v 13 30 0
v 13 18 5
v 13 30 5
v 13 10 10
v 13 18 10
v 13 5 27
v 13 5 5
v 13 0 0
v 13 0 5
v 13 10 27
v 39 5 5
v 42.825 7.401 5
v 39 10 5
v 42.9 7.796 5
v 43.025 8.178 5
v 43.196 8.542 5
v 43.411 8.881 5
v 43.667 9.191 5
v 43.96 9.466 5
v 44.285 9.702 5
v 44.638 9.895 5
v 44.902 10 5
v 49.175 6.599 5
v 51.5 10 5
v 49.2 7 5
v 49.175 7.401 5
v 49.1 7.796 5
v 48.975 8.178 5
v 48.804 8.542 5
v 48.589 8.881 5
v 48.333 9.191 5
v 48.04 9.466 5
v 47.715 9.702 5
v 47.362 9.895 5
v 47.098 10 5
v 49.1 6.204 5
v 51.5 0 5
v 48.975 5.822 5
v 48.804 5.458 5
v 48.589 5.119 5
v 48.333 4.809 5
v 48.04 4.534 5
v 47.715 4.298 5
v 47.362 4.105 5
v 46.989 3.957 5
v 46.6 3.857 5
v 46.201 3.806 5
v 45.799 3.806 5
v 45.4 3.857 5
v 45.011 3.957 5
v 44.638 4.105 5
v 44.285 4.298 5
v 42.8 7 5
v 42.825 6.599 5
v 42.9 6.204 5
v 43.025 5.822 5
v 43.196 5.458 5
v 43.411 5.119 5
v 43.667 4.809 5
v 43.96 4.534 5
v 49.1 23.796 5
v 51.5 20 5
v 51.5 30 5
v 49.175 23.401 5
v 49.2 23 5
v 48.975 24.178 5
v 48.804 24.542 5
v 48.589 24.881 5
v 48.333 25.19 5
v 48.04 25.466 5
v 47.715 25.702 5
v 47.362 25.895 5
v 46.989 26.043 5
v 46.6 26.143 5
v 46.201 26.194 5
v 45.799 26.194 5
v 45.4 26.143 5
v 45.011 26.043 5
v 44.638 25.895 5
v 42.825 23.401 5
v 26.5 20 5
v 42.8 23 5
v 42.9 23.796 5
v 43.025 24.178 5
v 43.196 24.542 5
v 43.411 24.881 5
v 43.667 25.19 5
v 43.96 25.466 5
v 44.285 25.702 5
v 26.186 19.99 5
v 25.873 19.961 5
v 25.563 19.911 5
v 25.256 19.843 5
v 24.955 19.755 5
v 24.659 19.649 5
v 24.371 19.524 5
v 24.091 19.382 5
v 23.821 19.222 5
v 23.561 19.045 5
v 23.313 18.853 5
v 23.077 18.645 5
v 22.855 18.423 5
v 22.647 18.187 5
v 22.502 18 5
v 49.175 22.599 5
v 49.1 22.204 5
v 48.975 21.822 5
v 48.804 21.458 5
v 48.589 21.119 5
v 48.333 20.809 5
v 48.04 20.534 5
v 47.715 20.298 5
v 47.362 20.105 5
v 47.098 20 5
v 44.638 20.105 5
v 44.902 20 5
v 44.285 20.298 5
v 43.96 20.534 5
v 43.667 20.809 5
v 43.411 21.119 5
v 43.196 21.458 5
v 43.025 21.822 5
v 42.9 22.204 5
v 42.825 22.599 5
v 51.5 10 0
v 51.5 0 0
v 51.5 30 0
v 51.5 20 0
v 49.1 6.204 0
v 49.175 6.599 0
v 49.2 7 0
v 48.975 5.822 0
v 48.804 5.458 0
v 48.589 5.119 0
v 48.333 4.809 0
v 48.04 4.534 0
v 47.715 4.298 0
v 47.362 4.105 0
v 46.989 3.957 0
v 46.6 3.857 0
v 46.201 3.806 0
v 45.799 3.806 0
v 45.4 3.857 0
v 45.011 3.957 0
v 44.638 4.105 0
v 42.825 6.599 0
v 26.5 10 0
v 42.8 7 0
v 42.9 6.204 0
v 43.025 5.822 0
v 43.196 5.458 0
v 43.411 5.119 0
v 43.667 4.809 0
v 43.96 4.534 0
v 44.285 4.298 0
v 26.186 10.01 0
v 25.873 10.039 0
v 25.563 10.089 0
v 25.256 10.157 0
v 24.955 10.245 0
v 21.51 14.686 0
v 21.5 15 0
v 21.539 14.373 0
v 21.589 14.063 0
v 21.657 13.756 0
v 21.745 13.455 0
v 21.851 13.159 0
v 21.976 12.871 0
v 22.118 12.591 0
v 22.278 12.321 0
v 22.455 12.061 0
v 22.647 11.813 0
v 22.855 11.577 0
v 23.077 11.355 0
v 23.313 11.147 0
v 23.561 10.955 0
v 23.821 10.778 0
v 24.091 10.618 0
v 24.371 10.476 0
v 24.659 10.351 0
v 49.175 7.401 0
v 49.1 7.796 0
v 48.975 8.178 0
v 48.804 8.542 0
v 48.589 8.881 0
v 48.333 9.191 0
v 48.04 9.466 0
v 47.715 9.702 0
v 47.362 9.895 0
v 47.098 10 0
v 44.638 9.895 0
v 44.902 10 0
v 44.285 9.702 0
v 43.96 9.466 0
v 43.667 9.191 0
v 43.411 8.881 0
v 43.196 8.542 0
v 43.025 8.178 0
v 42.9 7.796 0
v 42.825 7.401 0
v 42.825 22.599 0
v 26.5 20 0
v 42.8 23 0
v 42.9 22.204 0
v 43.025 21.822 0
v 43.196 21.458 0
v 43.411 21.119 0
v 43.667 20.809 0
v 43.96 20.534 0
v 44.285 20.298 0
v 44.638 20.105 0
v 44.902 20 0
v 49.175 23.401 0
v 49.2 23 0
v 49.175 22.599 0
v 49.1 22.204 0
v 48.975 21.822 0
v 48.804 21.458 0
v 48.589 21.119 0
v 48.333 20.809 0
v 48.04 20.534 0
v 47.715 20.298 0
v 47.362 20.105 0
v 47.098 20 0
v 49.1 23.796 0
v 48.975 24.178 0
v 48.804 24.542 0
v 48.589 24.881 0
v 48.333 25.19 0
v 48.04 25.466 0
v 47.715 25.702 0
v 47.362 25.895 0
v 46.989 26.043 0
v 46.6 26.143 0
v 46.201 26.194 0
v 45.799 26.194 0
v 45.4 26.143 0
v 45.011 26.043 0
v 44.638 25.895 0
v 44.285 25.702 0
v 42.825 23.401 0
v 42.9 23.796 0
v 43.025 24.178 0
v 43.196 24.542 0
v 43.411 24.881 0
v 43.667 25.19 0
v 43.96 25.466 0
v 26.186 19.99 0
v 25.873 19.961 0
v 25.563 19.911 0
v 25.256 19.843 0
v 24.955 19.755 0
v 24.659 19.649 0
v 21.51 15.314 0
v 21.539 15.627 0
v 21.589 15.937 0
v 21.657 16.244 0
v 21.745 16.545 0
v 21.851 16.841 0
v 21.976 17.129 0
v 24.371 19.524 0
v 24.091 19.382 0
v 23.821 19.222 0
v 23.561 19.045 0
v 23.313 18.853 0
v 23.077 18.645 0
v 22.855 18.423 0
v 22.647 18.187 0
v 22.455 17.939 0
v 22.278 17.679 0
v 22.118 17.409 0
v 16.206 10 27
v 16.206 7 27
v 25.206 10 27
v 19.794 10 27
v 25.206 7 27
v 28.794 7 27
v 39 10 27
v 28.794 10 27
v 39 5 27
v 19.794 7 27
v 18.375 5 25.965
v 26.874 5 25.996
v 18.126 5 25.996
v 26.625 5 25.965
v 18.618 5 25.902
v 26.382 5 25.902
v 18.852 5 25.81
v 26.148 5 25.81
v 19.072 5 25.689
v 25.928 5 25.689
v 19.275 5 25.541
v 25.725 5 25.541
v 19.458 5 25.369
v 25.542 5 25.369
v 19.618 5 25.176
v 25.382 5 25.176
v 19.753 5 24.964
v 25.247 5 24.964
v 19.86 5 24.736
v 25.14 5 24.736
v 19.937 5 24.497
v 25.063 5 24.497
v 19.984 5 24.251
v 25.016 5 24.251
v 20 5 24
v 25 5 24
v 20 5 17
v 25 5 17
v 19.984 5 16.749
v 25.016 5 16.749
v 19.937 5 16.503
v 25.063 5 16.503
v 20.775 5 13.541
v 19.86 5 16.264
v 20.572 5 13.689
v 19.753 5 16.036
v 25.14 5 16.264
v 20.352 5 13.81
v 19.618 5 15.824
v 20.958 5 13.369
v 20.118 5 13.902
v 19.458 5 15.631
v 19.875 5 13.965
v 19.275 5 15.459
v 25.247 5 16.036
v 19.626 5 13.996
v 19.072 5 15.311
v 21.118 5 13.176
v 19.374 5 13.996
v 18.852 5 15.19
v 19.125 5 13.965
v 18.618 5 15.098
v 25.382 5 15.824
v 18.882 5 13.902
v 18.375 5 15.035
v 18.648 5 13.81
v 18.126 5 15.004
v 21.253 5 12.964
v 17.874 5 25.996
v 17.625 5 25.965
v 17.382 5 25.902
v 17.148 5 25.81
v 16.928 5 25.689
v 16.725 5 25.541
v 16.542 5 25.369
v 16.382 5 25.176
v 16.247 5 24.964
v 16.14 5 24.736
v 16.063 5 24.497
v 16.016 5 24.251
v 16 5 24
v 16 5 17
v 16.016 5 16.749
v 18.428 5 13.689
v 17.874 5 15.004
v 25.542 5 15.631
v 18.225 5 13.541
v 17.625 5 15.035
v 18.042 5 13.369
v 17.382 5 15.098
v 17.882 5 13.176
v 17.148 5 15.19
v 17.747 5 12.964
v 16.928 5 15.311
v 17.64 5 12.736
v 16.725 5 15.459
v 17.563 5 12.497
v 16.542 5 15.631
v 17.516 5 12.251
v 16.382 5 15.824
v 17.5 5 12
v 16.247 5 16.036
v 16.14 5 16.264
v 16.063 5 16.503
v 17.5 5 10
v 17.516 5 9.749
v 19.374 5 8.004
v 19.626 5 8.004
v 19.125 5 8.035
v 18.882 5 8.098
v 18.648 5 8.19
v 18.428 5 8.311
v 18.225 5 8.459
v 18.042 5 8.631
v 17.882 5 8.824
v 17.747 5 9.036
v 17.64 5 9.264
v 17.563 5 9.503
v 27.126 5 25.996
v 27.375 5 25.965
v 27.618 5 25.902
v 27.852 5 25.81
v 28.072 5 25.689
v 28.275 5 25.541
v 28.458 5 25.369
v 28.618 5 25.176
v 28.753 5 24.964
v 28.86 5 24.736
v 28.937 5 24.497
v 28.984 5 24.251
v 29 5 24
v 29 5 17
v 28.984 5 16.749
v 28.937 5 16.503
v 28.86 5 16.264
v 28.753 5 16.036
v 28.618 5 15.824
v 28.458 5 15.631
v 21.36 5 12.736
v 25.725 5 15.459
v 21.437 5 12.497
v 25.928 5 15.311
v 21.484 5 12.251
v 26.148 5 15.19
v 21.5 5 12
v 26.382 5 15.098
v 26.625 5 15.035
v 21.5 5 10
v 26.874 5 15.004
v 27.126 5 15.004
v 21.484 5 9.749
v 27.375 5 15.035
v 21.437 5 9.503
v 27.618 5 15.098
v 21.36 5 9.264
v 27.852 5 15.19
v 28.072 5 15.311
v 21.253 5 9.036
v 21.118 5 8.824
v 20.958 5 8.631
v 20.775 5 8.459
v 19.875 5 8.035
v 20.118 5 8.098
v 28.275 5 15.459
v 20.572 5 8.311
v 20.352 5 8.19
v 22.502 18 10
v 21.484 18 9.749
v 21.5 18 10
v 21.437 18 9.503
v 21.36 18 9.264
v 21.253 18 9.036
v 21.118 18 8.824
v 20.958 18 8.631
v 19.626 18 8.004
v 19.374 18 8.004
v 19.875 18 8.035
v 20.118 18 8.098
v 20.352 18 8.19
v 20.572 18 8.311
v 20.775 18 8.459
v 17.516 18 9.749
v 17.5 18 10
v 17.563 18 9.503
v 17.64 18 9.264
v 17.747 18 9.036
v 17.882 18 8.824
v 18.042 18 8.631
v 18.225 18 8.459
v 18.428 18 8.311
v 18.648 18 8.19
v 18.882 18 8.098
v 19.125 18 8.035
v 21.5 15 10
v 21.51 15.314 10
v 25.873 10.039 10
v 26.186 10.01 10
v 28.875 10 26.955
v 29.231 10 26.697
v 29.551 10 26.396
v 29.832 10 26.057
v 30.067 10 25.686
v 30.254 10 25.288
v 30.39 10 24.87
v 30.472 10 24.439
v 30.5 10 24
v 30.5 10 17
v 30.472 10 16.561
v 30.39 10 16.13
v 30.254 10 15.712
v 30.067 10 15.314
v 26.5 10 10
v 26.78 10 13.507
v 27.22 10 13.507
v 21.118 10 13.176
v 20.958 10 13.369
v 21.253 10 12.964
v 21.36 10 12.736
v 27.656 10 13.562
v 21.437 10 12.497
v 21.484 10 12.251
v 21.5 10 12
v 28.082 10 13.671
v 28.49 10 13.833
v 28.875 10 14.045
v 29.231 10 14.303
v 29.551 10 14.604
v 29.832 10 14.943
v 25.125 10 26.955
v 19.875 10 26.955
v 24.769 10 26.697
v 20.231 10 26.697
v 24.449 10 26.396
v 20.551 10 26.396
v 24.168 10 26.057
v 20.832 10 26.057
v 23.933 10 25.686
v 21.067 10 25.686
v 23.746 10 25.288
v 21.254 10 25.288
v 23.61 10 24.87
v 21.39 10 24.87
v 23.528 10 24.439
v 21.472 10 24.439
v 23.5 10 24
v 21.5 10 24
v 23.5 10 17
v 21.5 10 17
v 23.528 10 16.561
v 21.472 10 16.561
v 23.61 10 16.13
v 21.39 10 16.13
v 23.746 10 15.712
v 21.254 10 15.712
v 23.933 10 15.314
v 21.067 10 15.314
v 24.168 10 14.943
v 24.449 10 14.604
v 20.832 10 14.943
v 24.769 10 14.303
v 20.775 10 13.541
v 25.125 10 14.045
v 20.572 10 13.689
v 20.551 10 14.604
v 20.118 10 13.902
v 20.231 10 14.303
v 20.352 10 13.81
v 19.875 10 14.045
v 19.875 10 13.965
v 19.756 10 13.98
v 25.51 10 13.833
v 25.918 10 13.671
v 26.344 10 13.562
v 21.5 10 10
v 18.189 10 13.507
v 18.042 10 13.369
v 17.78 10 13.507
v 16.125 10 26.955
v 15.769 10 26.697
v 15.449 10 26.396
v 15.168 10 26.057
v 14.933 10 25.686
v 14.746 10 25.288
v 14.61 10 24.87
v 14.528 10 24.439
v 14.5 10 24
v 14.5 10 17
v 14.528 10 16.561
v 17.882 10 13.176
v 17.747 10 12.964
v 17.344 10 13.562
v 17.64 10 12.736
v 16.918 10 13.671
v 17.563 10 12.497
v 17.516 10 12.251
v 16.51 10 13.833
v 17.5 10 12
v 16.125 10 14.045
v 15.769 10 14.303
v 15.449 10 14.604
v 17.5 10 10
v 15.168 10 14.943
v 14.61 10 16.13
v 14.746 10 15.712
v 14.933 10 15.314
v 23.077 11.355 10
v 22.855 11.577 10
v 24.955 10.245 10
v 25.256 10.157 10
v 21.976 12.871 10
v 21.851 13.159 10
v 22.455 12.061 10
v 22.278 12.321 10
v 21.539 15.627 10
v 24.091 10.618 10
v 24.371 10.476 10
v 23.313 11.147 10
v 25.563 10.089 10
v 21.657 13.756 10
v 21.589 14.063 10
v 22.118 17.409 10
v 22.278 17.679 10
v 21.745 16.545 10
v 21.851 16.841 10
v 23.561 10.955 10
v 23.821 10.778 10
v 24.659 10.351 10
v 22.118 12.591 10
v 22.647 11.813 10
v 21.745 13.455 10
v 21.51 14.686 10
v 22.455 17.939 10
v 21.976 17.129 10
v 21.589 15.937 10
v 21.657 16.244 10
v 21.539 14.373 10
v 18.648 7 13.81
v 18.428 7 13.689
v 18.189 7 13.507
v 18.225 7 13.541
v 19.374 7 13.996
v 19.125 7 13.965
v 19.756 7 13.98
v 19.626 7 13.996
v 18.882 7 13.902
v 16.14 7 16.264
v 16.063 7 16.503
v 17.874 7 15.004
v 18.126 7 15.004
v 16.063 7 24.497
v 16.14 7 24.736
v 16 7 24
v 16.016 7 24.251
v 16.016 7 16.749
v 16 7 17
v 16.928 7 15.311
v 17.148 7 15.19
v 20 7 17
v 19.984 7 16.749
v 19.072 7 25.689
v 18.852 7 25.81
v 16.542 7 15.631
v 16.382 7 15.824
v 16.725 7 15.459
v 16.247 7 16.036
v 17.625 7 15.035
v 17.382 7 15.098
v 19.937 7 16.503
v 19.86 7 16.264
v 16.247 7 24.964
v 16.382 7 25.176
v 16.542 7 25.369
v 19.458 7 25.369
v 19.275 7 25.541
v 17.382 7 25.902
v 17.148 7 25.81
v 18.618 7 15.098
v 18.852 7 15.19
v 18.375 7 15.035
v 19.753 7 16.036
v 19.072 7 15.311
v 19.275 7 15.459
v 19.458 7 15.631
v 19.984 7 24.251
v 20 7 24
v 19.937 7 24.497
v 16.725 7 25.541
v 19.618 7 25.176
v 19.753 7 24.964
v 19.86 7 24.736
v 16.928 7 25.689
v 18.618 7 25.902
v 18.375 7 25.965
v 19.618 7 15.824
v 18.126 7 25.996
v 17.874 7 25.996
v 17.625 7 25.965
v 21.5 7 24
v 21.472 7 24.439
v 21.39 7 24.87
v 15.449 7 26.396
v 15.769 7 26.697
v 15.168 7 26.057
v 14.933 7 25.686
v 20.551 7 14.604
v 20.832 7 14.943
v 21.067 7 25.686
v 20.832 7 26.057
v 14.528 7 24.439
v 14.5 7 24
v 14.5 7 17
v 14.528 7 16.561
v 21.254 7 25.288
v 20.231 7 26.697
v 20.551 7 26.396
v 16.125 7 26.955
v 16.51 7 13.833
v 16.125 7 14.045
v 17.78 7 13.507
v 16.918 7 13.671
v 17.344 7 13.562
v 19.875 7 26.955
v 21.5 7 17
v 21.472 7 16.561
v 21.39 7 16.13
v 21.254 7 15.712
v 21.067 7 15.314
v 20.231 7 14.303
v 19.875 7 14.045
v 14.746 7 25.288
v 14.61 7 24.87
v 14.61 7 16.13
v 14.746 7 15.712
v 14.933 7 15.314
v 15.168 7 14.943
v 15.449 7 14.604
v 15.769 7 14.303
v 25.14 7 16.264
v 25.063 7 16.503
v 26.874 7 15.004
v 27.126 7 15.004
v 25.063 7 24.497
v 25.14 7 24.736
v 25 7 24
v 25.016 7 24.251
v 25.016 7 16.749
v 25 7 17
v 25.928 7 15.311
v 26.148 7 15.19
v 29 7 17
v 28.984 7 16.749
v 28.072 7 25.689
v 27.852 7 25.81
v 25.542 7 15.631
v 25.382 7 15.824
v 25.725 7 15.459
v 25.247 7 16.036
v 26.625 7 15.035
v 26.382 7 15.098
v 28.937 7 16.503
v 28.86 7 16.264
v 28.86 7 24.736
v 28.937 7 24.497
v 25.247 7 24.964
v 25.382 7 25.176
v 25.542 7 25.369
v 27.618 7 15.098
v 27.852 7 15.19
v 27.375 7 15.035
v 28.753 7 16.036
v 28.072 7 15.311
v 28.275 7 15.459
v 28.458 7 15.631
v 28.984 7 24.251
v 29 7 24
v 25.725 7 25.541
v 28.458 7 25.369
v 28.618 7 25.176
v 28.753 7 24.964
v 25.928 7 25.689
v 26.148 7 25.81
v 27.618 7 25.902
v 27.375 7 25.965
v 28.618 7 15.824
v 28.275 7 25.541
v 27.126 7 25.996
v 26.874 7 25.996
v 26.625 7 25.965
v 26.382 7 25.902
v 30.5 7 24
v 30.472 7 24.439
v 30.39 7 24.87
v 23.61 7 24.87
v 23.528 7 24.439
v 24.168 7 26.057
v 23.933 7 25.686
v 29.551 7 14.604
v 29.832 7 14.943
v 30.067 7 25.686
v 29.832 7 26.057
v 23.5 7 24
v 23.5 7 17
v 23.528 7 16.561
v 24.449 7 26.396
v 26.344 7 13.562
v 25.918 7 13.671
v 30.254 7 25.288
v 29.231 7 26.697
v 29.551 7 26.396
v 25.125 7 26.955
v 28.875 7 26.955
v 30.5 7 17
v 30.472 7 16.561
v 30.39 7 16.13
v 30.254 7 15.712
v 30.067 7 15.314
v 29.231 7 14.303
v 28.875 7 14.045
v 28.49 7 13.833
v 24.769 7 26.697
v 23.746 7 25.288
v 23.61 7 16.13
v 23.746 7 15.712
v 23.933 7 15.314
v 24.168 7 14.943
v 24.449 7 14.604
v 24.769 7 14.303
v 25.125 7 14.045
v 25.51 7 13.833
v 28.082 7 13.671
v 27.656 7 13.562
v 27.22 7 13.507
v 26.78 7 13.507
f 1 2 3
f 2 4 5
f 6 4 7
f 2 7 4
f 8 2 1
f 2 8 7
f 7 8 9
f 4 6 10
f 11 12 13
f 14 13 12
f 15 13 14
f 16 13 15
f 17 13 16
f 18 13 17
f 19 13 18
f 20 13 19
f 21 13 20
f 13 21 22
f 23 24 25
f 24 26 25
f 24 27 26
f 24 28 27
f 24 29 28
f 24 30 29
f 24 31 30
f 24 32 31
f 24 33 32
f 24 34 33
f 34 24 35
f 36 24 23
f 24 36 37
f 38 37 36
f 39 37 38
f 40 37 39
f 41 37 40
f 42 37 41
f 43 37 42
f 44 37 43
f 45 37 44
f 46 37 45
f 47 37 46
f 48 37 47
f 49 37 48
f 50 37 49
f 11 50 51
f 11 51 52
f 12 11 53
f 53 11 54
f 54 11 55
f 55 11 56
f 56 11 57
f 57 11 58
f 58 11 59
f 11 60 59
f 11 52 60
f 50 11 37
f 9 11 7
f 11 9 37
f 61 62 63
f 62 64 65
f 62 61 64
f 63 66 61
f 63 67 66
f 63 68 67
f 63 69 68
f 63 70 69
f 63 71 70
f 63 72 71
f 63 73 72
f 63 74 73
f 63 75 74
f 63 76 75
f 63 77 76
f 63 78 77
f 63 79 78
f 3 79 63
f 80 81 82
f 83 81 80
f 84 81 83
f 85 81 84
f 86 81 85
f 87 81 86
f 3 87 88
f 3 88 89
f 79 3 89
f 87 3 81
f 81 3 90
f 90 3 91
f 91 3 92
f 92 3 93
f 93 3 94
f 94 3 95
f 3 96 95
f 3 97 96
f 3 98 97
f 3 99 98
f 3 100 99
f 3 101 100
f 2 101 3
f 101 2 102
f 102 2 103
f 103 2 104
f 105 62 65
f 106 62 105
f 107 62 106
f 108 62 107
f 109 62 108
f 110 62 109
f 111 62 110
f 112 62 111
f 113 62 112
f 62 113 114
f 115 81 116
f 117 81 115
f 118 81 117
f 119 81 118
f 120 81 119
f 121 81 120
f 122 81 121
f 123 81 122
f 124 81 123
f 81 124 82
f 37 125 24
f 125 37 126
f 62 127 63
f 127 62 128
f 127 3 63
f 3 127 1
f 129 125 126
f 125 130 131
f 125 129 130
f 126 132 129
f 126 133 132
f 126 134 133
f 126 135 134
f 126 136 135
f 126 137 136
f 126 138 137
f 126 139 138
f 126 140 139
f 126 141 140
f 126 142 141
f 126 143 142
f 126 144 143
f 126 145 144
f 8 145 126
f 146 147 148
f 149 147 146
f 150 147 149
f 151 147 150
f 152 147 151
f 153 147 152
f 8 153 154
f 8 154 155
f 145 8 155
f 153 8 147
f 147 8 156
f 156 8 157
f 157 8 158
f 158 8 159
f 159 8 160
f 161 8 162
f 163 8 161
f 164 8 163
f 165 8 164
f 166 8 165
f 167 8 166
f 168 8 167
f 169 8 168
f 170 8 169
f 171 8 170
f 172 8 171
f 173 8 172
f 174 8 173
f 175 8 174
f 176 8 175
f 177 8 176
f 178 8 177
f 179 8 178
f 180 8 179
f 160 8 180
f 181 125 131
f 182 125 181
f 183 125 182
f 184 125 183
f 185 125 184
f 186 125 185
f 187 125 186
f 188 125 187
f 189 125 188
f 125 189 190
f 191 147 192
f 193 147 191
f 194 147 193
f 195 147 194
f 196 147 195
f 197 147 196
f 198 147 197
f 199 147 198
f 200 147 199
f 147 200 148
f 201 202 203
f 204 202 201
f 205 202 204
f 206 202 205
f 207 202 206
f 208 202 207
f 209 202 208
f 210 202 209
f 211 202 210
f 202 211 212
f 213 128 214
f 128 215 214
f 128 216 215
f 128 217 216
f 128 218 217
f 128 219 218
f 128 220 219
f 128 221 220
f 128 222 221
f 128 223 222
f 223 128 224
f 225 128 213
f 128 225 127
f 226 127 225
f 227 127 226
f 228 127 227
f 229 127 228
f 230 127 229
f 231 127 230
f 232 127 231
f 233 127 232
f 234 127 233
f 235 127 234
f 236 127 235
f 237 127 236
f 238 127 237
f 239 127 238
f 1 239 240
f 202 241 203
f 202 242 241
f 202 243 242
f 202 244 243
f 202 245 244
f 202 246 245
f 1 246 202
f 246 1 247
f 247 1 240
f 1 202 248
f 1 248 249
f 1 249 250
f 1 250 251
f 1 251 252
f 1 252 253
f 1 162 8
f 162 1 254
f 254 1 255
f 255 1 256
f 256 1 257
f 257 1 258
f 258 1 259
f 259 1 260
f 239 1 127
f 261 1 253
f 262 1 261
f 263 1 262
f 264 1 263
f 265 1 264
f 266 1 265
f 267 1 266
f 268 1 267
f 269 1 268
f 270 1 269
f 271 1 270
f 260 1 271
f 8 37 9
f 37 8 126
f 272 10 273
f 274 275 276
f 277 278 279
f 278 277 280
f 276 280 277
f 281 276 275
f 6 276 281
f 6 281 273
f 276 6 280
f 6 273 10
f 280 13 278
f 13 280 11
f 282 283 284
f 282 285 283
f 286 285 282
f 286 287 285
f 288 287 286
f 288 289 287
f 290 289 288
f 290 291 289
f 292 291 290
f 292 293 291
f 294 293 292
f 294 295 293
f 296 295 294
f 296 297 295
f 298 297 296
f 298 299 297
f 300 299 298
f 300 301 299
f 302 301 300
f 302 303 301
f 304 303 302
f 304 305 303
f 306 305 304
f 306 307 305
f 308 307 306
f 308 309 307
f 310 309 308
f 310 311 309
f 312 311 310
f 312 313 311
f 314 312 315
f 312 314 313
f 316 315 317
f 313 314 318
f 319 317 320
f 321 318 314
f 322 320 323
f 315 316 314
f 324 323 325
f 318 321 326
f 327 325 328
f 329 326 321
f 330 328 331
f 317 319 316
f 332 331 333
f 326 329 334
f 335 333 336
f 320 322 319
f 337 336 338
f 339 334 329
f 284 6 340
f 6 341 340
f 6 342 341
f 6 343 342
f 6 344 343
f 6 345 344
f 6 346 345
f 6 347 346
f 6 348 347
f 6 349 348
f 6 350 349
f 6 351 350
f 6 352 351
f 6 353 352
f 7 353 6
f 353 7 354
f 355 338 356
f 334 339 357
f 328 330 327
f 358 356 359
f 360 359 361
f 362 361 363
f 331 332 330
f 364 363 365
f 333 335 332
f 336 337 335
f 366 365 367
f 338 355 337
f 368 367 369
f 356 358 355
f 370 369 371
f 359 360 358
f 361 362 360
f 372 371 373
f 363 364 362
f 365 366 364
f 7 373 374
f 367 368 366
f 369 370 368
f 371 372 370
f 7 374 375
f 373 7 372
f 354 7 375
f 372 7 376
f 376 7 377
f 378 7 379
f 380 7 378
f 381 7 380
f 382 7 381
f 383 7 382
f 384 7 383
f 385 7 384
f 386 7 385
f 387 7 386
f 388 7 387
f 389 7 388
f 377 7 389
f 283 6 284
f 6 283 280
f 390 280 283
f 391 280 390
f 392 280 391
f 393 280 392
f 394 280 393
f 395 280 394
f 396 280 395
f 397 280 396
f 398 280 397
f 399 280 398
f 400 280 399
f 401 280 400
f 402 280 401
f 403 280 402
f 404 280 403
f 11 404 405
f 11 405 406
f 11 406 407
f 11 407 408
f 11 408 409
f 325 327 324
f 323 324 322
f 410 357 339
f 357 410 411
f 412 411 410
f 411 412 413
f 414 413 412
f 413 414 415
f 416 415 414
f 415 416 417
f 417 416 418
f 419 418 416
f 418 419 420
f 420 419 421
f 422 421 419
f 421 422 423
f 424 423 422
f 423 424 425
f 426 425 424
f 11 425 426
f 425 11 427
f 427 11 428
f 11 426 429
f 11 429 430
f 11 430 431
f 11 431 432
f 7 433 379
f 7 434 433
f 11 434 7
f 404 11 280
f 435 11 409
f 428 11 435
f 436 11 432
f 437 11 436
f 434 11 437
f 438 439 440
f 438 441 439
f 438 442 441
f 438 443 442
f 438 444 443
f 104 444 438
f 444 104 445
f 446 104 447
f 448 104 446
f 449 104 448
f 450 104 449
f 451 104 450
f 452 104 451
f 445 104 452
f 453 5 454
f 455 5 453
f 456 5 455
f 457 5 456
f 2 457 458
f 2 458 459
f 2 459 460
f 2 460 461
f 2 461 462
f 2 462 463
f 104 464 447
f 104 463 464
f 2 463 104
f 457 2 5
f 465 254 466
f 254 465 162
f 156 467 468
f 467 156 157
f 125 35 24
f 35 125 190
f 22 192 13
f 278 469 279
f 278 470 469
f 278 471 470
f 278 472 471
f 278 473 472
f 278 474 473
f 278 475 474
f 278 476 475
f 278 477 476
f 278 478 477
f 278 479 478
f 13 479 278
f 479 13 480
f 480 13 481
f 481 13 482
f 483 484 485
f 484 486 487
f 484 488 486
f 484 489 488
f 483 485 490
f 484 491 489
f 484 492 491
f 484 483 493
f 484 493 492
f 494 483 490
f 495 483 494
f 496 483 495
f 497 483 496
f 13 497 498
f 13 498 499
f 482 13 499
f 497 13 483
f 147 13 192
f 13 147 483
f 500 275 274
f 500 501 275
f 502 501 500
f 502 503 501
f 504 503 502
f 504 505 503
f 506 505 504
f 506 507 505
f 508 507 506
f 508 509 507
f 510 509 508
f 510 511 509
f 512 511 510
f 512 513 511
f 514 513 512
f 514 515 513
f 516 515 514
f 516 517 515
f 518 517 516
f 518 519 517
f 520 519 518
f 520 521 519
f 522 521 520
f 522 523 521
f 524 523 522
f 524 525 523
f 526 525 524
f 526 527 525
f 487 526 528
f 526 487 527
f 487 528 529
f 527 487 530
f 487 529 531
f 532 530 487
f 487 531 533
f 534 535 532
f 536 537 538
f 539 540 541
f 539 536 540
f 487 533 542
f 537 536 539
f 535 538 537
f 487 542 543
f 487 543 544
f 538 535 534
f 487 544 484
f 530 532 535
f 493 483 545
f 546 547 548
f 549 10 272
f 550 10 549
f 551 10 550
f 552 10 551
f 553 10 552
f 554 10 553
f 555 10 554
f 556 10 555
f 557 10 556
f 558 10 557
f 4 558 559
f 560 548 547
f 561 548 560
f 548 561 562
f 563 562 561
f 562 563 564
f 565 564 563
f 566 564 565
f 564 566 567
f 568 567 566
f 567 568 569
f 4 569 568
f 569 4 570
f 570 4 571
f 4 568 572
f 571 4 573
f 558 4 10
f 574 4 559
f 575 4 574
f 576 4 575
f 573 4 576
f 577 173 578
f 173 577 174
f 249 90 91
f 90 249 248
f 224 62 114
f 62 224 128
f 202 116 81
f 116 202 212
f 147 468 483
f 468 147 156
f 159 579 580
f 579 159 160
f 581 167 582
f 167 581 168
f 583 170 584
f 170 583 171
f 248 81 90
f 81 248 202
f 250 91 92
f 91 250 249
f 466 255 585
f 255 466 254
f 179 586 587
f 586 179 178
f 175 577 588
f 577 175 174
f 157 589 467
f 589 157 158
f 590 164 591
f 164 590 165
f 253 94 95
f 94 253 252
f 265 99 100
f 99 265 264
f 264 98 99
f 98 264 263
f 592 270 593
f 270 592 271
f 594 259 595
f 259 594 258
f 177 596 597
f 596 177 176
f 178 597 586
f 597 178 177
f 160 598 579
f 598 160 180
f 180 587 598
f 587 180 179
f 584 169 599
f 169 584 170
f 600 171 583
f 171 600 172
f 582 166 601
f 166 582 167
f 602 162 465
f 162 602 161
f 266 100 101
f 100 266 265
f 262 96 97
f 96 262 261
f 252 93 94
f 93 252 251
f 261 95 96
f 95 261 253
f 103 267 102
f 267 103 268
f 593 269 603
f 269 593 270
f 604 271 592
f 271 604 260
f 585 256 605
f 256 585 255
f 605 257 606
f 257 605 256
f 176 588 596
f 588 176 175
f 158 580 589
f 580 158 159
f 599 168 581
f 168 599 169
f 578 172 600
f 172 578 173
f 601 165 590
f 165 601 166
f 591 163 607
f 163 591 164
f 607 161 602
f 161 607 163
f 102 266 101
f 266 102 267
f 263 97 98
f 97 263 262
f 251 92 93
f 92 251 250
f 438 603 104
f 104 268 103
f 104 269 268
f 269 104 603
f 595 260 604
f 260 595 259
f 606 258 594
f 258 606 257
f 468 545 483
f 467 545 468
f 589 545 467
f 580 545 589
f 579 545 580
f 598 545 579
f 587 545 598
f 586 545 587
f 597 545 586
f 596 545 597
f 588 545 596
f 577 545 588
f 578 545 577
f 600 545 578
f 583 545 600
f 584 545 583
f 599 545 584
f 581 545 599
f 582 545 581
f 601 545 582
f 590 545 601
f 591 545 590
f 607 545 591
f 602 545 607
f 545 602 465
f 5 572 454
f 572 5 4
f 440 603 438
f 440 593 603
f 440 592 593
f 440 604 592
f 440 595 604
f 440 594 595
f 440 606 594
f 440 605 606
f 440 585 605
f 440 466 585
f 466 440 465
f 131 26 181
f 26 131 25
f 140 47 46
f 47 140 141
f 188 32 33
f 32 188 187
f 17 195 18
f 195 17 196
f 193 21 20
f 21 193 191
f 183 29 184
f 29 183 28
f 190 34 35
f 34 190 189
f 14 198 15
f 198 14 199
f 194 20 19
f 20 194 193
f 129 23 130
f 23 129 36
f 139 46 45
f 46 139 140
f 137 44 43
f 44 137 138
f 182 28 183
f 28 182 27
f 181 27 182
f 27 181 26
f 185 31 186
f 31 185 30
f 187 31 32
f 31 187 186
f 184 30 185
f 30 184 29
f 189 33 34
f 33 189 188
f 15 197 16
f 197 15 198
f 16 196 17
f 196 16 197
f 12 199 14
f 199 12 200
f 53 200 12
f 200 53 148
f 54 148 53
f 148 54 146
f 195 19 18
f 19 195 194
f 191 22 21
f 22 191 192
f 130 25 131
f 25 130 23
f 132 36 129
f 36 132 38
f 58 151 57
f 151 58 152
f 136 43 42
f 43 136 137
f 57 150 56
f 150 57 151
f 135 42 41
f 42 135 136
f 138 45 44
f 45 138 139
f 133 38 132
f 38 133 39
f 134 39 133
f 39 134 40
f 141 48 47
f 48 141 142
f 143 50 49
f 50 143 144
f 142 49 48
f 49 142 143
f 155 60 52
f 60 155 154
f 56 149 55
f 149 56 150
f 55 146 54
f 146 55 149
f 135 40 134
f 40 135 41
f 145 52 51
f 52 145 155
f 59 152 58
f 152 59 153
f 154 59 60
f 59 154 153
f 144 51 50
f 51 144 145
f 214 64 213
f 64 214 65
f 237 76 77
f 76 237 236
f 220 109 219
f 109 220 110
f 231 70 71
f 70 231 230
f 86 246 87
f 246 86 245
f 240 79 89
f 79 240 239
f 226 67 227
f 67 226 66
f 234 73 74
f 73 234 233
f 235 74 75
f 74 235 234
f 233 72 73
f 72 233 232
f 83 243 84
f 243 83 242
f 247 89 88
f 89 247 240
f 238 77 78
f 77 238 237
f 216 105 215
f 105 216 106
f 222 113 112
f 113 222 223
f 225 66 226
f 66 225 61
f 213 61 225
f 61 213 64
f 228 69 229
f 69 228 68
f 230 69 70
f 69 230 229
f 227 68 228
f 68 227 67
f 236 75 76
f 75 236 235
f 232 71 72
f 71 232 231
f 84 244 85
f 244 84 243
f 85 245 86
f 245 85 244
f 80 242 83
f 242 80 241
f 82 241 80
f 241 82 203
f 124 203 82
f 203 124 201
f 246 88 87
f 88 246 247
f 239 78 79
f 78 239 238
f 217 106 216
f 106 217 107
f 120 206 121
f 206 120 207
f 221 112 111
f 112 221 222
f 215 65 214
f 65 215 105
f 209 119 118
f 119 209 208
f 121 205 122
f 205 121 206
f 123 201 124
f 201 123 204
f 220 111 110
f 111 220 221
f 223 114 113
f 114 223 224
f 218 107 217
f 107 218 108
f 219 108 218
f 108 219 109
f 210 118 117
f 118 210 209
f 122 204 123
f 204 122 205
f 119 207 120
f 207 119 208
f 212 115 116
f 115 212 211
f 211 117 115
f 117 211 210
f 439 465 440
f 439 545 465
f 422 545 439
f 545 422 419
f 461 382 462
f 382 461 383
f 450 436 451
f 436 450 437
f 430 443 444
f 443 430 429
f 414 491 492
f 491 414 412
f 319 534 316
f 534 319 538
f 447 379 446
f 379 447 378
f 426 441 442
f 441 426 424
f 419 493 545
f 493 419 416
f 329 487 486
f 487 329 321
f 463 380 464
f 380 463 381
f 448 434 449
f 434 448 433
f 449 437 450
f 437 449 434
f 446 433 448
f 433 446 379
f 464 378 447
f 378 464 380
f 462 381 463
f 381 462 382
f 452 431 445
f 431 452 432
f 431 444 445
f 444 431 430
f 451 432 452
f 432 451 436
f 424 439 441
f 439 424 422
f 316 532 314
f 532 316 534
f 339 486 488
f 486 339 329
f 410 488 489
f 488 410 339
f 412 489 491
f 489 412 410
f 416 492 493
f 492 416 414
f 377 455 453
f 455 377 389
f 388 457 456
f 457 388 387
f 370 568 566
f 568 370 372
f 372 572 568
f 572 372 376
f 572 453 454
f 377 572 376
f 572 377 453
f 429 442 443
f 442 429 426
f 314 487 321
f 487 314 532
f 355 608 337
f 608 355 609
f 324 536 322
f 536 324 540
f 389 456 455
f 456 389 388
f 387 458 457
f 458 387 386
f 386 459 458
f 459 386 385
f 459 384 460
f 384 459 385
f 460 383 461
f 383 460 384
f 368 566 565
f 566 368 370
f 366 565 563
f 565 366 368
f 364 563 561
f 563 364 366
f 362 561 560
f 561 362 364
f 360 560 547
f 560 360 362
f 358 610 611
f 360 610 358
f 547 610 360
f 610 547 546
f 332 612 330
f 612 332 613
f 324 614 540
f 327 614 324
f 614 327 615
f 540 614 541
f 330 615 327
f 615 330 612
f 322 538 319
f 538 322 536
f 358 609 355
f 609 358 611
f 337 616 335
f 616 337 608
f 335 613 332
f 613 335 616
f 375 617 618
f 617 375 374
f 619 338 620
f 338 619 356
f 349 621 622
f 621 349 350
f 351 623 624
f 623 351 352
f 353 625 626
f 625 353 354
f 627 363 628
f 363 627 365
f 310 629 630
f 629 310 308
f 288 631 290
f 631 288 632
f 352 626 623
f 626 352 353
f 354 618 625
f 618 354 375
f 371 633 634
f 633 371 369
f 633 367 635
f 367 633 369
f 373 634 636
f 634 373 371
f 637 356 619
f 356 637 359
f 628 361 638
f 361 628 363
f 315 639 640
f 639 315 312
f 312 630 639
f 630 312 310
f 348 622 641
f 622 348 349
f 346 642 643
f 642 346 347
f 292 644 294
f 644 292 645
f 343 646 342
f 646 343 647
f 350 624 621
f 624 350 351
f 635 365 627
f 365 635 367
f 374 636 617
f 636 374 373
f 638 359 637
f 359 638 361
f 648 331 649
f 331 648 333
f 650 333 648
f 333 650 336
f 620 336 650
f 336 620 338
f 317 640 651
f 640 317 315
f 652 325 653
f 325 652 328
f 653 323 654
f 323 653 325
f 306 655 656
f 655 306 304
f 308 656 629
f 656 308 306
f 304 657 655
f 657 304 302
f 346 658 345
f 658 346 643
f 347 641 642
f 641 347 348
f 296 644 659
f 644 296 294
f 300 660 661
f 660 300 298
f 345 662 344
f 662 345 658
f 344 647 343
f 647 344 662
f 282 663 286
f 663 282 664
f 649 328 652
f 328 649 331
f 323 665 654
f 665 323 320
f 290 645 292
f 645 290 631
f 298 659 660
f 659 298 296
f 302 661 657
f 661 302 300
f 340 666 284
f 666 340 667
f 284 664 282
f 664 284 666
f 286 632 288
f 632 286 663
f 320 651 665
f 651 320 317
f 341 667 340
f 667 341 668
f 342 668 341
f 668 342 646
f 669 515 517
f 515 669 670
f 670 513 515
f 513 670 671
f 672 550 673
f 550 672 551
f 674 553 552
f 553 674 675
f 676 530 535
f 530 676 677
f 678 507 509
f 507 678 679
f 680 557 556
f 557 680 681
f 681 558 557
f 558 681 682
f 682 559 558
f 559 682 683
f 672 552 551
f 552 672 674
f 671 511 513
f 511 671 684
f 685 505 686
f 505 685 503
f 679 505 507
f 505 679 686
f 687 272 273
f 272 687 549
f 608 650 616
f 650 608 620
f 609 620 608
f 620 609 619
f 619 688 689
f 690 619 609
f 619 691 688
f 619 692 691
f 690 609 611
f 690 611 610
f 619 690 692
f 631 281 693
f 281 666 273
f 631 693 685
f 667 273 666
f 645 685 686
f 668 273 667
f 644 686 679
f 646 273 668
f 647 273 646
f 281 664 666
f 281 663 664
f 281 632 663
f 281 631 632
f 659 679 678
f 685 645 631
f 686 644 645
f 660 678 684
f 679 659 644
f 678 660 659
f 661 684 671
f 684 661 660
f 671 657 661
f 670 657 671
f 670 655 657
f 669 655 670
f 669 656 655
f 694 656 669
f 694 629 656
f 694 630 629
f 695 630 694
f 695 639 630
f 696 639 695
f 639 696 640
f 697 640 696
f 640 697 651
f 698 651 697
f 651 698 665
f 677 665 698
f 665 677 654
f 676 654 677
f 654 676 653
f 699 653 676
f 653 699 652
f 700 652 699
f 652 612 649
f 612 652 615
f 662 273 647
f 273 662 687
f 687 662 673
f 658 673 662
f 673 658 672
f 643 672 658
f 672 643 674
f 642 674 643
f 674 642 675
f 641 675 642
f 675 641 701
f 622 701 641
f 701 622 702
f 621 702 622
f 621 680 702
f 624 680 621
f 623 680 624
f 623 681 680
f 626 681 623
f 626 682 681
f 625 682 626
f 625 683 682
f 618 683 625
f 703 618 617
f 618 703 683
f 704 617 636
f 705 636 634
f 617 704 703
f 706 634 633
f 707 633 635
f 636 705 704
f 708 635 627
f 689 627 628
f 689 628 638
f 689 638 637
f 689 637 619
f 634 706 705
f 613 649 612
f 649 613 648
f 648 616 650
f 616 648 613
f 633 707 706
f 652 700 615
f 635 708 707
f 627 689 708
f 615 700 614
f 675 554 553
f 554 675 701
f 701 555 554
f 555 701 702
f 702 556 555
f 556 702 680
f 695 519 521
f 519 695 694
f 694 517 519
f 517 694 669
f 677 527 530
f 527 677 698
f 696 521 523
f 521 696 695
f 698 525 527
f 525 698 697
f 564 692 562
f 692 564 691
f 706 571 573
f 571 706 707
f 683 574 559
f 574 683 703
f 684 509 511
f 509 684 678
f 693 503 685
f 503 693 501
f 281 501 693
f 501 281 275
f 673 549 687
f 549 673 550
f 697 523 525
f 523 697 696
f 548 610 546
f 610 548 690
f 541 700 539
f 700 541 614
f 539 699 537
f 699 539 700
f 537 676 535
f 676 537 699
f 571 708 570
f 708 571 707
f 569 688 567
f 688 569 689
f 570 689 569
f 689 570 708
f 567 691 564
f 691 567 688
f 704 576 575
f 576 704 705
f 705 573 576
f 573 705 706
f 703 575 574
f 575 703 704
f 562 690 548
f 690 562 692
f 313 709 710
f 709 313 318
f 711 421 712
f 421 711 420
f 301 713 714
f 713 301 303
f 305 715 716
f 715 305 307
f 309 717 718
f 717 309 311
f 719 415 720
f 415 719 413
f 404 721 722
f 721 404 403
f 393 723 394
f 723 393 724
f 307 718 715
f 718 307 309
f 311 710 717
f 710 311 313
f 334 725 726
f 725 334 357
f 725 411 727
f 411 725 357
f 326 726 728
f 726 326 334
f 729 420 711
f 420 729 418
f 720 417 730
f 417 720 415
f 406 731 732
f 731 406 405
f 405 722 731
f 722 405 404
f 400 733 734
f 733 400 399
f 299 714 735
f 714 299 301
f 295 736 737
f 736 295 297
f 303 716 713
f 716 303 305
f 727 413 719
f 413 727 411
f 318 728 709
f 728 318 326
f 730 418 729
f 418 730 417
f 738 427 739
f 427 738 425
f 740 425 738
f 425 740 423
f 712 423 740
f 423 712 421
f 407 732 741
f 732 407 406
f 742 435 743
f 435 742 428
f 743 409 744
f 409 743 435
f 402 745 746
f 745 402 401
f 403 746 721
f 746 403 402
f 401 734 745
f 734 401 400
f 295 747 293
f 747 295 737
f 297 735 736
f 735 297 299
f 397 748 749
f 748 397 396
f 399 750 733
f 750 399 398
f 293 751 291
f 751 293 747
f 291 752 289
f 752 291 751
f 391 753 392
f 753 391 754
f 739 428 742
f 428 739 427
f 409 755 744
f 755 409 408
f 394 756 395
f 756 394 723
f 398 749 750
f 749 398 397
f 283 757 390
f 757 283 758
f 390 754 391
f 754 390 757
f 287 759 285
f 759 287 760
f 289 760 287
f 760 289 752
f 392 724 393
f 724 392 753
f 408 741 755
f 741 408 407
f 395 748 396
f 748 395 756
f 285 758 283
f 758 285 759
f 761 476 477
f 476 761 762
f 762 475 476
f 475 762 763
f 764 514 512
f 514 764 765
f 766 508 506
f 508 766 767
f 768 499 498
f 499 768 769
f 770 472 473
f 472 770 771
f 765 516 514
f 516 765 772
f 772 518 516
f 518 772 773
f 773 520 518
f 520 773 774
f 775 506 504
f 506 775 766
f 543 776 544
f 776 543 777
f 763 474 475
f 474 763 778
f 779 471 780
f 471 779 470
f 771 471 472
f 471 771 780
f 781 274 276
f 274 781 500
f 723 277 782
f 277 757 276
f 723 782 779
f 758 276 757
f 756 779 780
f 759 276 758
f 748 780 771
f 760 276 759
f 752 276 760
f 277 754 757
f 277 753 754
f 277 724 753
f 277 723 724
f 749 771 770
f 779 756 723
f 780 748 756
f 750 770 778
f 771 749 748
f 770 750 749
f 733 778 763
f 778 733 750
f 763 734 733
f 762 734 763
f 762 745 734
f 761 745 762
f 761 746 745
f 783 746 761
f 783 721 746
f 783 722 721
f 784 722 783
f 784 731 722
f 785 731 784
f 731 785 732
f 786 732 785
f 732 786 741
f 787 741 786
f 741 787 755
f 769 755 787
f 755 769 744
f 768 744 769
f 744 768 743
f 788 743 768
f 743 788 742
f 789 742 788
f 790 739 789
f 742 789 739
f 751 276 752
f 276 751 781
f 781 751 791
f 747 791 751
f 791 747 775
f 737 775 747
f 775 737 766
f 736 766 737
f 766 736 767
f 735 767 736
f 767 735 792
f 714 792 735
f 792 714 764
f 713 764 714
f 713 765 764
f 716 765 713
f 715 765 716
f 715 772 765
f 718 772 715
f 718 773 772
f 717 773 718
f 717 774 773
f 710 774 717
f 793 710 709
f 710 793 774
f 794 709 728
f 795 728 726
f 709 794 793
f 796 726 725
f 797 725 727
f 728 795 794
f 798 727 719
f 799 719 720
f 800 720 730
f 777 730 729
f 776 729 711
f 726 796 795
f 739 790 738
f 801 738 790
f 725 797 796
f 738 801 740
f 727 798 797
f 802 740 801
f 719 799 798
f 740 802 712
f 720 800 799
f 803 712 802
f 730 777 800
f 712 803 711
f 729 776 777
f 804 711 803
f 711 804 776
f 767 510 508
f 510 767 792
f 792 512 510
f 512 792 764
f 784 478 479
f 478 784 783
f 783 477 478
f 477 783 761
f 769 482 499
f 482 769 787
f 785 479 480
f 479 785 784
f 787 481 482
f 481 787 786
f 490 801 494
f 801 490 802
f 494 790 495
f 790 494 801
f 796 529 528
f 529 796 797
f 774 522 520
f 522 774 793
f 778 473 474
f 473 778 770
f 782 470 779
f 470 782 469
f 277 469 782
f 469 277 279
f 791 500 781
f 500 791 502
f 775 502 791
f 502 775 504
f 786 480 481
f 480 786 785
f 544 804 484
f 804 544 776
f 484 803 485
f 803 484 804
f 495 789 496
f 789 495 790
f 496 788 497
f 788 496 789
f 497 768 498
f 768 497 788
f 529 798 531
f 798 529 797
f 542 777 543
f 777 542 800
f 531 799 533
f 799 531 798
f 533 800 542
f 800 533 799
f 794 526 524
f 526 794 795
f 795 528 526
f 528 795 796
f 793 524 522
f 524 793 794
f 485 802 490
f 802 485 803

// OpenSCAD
r_m3=2;
r_tete_m3=3.5;
r_ecrou_m3=3.3;
r_m6=3.2;

module endstop_x(){
    difference(){
        union(){
            translate([13,0,0]){cube([38.5,30,5]);}
            translate([13,5,4]){cube([26,13,23]);}
        }
        
        //trou central d'arbre
        hull(){
            translate([26.5,15,-5]){cylinder(r=5, h=50, $fn=100);}
            translate([60,15,-5]){cylinder(r=5, h=50, $fn=100);}
        }
        
        hull(){
            translate([0,15,10]){cylinder(r=5, h=50, $fn=100);}
            translate([60,15,10]){cylinder(r=5, h=50, $fn=100);}
        }
        
        //trous de montage
        
        translate([26.5+19.5,15-8,-5]){cylinder(r=r_m6, h=15, $fn=50);}
        translate([26.5+19.5,15+8,-5]){cylinder(r=r_m6, h=15, $fn=50);}
        
        
        
        
        //trous pour collier de serrage spirale
        hull(){
            translate([26.5-5-2,0,10]){rotate([-90,0,0])cylinder(r=2, h=50, $fn=50);}
            translate([26.5-5-2,0,12]){rotate([-90,0,0])cylinder(r=2, h=50, $fn=50);}
        }
        
        //trous pour fixation contact de fin de course
        hull(){
        translate([18,0,24]){rotate([-90,0,0])cylinder(r=2, h=50, $fn=50);}
        translate([18,0,17]){rotate([-90,0,0])cylinder(r=2, h=50, $fn=50);}
    }
        
        hull(){
        translate([18,19,24]){rotate([90,0,0])cylinder(r=3.5, h=12, $fn=50);}
        translate([18,19,17]){rotate([90,0,0])cylinder(r=3.5, h=12, $fn=50);}
    }
    
    hull(){
        translate([18+9,0,24]){rotate([-90,0,0])cylinder(r=2, h=50, $fn=50);}
        translate([18+9,0,17]){rotate([-90,0,0])cylinder(r=2, h=50, $fn=50);}
    }
        
        hull(){
        translate([18+9,19,24]){rotate([90,0,0])cylinder(r=3.5, h=12, $fn=50);}
        translate([18+9,19,17]){rotate([90,0,0])cylinder(r=3.5, h=12, $fn=50);}
    }
    }
}


endstop_x();
